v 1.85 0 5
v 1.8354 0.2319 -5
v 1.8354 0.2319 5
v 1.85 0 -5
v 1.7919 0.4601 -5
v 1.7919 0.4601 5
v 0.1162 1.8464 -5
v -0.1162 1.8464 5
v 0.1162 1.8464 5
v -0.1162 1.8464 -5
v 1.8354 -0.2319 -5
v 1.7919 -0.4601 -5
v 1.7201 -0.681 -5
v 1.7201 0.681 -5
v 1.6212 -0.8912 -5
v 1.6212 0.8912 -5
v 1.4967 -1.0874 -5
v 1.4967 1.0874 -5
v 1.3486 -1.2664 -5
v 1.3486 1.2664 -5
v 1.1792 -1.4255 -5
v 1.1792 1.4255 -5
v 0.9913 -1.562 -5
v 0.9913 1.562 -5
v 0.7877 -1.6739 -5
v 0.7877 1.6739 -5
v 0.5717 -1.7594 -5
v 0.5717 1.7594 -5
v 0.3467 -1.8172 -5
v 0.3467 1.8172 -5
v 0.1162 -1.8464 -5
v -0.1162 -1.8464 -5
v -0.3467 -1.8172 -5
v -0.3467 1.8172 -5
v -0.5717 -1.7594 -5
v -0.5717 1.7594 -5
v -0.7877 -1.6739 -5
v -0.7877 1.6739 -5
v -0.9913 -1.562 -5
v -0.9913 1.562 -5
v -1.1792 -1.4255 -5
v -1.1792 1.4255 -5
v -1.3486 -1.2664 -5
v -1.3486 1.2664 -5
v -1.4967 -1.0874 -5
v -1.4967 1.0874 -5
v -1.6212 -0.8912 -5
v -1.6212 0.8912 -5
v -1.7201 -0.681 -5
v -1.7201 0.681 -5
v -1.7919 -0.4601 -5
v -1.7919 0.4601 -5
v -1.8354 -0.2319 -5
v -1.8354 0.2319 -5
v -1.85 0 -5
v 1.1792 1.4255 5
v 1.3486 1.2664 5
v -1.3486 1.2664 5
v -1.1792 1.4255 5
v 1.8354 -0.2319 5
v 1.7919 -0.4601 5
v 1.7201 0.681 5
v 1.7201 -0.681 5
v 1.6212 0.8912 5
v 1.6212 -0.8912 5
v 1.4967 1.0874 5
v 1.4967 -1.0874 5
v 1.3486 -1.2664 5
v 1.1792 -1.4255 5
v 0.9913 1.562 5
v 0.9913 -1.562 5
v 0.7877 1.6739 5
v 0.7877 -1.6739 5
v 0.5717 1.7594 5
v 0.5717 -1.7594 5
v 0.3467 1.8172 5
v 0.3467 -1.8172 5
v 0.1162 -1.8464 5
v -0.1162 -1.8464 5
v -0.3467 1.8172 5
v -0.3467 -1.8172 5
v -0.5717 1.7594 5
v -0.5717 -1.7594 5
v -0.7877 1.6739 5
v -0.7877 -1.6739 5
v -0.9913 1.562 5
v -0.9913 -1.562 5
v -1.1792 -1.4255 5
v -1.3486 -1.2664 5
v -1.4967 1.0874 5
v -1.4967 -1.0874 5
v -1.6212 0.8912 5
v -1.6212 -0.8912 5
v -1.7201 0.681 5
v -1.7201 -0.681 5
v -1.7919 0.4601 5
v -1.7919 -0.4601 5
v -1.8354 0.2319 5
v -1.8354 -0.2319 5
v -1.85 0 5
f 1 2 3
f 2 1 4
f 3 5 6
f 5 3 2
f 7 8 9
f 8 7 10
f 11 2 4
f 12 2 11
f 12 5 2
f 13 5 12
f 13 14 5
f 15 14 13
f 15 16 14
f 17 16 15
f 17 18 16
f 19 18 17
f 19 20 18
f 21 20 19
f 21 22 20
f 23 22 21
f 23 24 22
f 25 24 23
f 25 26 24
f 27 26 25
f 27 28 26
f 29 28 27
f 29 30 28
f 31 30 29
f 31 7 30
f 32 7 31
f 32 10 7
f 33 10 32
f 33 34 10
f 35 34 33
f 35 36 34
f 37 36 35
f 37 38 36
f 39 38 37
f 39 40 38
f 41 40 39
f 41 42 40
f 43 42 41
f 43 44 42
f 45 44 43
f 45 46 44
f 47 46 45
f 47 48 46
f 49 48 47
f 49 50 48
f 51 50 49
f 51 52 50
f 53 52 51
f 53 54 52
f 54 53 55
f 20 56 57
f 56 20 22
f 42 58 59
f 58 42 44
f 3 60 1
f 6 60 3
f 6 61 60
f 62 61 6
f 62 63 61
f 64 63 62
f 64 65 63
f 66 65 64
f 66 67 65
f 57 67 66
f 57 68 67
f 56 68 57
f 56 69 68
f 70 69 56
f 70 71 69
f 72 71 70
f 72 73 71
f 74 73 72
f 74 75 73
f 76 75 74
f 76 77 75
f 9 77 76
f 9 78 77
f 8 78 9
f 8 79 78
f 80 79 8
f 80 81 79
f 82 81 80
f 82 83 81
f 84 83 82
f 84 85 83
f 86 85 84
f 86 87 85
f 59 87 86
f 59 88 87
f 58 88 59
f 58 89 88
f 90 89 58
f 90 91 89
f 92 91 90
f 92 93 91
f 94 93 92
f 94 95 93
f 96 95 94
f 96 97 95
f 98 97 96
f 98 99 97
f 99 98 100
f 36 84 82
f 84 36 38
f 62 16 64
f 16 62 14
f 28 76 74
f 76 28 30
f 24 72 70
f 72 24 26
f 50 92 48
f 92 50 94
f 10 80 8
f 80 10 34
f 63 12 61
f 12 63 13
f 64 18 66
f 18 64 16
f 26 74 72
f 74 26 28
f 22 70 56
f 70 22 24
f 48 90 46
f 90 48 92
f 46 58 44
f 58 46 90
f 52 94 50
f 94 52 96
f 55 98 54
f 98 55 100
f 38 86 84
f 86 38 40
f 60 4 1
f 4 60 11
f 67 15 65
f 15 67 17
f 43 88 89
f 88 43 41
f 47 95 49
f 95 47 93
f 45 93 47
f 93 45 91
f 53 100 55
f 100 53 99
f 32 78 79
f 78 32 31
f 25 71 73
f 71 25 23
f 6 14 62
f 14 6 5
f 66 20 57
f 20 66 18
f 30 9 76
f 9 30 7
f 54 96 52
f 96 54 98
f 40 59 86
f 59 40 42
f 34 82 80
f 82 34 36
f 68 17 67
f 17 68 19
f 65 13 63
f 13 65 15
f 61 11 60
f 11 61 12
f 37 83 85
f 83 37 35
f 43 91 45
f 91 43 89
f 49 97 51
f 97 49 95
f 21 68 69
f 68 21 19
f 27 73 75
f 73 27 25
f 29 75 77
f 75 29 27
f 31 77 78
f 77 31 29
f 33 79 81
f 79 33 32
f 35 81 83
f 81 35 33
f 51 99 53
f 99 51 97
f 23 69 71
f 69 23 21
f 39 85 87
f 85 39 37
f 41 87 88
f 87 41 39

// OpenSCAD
$fn = 50;


difference() {
	union() {
		translate(v = [0, 0, -5.0000000000]) {
			cylinder(h = 10, r = 1.8500000000);
		}
	}
	union() {
		translate(v = [0, 0, -100.0000000000]) {
			cylinder(h = 200, r = 0);
		}
	}
}
